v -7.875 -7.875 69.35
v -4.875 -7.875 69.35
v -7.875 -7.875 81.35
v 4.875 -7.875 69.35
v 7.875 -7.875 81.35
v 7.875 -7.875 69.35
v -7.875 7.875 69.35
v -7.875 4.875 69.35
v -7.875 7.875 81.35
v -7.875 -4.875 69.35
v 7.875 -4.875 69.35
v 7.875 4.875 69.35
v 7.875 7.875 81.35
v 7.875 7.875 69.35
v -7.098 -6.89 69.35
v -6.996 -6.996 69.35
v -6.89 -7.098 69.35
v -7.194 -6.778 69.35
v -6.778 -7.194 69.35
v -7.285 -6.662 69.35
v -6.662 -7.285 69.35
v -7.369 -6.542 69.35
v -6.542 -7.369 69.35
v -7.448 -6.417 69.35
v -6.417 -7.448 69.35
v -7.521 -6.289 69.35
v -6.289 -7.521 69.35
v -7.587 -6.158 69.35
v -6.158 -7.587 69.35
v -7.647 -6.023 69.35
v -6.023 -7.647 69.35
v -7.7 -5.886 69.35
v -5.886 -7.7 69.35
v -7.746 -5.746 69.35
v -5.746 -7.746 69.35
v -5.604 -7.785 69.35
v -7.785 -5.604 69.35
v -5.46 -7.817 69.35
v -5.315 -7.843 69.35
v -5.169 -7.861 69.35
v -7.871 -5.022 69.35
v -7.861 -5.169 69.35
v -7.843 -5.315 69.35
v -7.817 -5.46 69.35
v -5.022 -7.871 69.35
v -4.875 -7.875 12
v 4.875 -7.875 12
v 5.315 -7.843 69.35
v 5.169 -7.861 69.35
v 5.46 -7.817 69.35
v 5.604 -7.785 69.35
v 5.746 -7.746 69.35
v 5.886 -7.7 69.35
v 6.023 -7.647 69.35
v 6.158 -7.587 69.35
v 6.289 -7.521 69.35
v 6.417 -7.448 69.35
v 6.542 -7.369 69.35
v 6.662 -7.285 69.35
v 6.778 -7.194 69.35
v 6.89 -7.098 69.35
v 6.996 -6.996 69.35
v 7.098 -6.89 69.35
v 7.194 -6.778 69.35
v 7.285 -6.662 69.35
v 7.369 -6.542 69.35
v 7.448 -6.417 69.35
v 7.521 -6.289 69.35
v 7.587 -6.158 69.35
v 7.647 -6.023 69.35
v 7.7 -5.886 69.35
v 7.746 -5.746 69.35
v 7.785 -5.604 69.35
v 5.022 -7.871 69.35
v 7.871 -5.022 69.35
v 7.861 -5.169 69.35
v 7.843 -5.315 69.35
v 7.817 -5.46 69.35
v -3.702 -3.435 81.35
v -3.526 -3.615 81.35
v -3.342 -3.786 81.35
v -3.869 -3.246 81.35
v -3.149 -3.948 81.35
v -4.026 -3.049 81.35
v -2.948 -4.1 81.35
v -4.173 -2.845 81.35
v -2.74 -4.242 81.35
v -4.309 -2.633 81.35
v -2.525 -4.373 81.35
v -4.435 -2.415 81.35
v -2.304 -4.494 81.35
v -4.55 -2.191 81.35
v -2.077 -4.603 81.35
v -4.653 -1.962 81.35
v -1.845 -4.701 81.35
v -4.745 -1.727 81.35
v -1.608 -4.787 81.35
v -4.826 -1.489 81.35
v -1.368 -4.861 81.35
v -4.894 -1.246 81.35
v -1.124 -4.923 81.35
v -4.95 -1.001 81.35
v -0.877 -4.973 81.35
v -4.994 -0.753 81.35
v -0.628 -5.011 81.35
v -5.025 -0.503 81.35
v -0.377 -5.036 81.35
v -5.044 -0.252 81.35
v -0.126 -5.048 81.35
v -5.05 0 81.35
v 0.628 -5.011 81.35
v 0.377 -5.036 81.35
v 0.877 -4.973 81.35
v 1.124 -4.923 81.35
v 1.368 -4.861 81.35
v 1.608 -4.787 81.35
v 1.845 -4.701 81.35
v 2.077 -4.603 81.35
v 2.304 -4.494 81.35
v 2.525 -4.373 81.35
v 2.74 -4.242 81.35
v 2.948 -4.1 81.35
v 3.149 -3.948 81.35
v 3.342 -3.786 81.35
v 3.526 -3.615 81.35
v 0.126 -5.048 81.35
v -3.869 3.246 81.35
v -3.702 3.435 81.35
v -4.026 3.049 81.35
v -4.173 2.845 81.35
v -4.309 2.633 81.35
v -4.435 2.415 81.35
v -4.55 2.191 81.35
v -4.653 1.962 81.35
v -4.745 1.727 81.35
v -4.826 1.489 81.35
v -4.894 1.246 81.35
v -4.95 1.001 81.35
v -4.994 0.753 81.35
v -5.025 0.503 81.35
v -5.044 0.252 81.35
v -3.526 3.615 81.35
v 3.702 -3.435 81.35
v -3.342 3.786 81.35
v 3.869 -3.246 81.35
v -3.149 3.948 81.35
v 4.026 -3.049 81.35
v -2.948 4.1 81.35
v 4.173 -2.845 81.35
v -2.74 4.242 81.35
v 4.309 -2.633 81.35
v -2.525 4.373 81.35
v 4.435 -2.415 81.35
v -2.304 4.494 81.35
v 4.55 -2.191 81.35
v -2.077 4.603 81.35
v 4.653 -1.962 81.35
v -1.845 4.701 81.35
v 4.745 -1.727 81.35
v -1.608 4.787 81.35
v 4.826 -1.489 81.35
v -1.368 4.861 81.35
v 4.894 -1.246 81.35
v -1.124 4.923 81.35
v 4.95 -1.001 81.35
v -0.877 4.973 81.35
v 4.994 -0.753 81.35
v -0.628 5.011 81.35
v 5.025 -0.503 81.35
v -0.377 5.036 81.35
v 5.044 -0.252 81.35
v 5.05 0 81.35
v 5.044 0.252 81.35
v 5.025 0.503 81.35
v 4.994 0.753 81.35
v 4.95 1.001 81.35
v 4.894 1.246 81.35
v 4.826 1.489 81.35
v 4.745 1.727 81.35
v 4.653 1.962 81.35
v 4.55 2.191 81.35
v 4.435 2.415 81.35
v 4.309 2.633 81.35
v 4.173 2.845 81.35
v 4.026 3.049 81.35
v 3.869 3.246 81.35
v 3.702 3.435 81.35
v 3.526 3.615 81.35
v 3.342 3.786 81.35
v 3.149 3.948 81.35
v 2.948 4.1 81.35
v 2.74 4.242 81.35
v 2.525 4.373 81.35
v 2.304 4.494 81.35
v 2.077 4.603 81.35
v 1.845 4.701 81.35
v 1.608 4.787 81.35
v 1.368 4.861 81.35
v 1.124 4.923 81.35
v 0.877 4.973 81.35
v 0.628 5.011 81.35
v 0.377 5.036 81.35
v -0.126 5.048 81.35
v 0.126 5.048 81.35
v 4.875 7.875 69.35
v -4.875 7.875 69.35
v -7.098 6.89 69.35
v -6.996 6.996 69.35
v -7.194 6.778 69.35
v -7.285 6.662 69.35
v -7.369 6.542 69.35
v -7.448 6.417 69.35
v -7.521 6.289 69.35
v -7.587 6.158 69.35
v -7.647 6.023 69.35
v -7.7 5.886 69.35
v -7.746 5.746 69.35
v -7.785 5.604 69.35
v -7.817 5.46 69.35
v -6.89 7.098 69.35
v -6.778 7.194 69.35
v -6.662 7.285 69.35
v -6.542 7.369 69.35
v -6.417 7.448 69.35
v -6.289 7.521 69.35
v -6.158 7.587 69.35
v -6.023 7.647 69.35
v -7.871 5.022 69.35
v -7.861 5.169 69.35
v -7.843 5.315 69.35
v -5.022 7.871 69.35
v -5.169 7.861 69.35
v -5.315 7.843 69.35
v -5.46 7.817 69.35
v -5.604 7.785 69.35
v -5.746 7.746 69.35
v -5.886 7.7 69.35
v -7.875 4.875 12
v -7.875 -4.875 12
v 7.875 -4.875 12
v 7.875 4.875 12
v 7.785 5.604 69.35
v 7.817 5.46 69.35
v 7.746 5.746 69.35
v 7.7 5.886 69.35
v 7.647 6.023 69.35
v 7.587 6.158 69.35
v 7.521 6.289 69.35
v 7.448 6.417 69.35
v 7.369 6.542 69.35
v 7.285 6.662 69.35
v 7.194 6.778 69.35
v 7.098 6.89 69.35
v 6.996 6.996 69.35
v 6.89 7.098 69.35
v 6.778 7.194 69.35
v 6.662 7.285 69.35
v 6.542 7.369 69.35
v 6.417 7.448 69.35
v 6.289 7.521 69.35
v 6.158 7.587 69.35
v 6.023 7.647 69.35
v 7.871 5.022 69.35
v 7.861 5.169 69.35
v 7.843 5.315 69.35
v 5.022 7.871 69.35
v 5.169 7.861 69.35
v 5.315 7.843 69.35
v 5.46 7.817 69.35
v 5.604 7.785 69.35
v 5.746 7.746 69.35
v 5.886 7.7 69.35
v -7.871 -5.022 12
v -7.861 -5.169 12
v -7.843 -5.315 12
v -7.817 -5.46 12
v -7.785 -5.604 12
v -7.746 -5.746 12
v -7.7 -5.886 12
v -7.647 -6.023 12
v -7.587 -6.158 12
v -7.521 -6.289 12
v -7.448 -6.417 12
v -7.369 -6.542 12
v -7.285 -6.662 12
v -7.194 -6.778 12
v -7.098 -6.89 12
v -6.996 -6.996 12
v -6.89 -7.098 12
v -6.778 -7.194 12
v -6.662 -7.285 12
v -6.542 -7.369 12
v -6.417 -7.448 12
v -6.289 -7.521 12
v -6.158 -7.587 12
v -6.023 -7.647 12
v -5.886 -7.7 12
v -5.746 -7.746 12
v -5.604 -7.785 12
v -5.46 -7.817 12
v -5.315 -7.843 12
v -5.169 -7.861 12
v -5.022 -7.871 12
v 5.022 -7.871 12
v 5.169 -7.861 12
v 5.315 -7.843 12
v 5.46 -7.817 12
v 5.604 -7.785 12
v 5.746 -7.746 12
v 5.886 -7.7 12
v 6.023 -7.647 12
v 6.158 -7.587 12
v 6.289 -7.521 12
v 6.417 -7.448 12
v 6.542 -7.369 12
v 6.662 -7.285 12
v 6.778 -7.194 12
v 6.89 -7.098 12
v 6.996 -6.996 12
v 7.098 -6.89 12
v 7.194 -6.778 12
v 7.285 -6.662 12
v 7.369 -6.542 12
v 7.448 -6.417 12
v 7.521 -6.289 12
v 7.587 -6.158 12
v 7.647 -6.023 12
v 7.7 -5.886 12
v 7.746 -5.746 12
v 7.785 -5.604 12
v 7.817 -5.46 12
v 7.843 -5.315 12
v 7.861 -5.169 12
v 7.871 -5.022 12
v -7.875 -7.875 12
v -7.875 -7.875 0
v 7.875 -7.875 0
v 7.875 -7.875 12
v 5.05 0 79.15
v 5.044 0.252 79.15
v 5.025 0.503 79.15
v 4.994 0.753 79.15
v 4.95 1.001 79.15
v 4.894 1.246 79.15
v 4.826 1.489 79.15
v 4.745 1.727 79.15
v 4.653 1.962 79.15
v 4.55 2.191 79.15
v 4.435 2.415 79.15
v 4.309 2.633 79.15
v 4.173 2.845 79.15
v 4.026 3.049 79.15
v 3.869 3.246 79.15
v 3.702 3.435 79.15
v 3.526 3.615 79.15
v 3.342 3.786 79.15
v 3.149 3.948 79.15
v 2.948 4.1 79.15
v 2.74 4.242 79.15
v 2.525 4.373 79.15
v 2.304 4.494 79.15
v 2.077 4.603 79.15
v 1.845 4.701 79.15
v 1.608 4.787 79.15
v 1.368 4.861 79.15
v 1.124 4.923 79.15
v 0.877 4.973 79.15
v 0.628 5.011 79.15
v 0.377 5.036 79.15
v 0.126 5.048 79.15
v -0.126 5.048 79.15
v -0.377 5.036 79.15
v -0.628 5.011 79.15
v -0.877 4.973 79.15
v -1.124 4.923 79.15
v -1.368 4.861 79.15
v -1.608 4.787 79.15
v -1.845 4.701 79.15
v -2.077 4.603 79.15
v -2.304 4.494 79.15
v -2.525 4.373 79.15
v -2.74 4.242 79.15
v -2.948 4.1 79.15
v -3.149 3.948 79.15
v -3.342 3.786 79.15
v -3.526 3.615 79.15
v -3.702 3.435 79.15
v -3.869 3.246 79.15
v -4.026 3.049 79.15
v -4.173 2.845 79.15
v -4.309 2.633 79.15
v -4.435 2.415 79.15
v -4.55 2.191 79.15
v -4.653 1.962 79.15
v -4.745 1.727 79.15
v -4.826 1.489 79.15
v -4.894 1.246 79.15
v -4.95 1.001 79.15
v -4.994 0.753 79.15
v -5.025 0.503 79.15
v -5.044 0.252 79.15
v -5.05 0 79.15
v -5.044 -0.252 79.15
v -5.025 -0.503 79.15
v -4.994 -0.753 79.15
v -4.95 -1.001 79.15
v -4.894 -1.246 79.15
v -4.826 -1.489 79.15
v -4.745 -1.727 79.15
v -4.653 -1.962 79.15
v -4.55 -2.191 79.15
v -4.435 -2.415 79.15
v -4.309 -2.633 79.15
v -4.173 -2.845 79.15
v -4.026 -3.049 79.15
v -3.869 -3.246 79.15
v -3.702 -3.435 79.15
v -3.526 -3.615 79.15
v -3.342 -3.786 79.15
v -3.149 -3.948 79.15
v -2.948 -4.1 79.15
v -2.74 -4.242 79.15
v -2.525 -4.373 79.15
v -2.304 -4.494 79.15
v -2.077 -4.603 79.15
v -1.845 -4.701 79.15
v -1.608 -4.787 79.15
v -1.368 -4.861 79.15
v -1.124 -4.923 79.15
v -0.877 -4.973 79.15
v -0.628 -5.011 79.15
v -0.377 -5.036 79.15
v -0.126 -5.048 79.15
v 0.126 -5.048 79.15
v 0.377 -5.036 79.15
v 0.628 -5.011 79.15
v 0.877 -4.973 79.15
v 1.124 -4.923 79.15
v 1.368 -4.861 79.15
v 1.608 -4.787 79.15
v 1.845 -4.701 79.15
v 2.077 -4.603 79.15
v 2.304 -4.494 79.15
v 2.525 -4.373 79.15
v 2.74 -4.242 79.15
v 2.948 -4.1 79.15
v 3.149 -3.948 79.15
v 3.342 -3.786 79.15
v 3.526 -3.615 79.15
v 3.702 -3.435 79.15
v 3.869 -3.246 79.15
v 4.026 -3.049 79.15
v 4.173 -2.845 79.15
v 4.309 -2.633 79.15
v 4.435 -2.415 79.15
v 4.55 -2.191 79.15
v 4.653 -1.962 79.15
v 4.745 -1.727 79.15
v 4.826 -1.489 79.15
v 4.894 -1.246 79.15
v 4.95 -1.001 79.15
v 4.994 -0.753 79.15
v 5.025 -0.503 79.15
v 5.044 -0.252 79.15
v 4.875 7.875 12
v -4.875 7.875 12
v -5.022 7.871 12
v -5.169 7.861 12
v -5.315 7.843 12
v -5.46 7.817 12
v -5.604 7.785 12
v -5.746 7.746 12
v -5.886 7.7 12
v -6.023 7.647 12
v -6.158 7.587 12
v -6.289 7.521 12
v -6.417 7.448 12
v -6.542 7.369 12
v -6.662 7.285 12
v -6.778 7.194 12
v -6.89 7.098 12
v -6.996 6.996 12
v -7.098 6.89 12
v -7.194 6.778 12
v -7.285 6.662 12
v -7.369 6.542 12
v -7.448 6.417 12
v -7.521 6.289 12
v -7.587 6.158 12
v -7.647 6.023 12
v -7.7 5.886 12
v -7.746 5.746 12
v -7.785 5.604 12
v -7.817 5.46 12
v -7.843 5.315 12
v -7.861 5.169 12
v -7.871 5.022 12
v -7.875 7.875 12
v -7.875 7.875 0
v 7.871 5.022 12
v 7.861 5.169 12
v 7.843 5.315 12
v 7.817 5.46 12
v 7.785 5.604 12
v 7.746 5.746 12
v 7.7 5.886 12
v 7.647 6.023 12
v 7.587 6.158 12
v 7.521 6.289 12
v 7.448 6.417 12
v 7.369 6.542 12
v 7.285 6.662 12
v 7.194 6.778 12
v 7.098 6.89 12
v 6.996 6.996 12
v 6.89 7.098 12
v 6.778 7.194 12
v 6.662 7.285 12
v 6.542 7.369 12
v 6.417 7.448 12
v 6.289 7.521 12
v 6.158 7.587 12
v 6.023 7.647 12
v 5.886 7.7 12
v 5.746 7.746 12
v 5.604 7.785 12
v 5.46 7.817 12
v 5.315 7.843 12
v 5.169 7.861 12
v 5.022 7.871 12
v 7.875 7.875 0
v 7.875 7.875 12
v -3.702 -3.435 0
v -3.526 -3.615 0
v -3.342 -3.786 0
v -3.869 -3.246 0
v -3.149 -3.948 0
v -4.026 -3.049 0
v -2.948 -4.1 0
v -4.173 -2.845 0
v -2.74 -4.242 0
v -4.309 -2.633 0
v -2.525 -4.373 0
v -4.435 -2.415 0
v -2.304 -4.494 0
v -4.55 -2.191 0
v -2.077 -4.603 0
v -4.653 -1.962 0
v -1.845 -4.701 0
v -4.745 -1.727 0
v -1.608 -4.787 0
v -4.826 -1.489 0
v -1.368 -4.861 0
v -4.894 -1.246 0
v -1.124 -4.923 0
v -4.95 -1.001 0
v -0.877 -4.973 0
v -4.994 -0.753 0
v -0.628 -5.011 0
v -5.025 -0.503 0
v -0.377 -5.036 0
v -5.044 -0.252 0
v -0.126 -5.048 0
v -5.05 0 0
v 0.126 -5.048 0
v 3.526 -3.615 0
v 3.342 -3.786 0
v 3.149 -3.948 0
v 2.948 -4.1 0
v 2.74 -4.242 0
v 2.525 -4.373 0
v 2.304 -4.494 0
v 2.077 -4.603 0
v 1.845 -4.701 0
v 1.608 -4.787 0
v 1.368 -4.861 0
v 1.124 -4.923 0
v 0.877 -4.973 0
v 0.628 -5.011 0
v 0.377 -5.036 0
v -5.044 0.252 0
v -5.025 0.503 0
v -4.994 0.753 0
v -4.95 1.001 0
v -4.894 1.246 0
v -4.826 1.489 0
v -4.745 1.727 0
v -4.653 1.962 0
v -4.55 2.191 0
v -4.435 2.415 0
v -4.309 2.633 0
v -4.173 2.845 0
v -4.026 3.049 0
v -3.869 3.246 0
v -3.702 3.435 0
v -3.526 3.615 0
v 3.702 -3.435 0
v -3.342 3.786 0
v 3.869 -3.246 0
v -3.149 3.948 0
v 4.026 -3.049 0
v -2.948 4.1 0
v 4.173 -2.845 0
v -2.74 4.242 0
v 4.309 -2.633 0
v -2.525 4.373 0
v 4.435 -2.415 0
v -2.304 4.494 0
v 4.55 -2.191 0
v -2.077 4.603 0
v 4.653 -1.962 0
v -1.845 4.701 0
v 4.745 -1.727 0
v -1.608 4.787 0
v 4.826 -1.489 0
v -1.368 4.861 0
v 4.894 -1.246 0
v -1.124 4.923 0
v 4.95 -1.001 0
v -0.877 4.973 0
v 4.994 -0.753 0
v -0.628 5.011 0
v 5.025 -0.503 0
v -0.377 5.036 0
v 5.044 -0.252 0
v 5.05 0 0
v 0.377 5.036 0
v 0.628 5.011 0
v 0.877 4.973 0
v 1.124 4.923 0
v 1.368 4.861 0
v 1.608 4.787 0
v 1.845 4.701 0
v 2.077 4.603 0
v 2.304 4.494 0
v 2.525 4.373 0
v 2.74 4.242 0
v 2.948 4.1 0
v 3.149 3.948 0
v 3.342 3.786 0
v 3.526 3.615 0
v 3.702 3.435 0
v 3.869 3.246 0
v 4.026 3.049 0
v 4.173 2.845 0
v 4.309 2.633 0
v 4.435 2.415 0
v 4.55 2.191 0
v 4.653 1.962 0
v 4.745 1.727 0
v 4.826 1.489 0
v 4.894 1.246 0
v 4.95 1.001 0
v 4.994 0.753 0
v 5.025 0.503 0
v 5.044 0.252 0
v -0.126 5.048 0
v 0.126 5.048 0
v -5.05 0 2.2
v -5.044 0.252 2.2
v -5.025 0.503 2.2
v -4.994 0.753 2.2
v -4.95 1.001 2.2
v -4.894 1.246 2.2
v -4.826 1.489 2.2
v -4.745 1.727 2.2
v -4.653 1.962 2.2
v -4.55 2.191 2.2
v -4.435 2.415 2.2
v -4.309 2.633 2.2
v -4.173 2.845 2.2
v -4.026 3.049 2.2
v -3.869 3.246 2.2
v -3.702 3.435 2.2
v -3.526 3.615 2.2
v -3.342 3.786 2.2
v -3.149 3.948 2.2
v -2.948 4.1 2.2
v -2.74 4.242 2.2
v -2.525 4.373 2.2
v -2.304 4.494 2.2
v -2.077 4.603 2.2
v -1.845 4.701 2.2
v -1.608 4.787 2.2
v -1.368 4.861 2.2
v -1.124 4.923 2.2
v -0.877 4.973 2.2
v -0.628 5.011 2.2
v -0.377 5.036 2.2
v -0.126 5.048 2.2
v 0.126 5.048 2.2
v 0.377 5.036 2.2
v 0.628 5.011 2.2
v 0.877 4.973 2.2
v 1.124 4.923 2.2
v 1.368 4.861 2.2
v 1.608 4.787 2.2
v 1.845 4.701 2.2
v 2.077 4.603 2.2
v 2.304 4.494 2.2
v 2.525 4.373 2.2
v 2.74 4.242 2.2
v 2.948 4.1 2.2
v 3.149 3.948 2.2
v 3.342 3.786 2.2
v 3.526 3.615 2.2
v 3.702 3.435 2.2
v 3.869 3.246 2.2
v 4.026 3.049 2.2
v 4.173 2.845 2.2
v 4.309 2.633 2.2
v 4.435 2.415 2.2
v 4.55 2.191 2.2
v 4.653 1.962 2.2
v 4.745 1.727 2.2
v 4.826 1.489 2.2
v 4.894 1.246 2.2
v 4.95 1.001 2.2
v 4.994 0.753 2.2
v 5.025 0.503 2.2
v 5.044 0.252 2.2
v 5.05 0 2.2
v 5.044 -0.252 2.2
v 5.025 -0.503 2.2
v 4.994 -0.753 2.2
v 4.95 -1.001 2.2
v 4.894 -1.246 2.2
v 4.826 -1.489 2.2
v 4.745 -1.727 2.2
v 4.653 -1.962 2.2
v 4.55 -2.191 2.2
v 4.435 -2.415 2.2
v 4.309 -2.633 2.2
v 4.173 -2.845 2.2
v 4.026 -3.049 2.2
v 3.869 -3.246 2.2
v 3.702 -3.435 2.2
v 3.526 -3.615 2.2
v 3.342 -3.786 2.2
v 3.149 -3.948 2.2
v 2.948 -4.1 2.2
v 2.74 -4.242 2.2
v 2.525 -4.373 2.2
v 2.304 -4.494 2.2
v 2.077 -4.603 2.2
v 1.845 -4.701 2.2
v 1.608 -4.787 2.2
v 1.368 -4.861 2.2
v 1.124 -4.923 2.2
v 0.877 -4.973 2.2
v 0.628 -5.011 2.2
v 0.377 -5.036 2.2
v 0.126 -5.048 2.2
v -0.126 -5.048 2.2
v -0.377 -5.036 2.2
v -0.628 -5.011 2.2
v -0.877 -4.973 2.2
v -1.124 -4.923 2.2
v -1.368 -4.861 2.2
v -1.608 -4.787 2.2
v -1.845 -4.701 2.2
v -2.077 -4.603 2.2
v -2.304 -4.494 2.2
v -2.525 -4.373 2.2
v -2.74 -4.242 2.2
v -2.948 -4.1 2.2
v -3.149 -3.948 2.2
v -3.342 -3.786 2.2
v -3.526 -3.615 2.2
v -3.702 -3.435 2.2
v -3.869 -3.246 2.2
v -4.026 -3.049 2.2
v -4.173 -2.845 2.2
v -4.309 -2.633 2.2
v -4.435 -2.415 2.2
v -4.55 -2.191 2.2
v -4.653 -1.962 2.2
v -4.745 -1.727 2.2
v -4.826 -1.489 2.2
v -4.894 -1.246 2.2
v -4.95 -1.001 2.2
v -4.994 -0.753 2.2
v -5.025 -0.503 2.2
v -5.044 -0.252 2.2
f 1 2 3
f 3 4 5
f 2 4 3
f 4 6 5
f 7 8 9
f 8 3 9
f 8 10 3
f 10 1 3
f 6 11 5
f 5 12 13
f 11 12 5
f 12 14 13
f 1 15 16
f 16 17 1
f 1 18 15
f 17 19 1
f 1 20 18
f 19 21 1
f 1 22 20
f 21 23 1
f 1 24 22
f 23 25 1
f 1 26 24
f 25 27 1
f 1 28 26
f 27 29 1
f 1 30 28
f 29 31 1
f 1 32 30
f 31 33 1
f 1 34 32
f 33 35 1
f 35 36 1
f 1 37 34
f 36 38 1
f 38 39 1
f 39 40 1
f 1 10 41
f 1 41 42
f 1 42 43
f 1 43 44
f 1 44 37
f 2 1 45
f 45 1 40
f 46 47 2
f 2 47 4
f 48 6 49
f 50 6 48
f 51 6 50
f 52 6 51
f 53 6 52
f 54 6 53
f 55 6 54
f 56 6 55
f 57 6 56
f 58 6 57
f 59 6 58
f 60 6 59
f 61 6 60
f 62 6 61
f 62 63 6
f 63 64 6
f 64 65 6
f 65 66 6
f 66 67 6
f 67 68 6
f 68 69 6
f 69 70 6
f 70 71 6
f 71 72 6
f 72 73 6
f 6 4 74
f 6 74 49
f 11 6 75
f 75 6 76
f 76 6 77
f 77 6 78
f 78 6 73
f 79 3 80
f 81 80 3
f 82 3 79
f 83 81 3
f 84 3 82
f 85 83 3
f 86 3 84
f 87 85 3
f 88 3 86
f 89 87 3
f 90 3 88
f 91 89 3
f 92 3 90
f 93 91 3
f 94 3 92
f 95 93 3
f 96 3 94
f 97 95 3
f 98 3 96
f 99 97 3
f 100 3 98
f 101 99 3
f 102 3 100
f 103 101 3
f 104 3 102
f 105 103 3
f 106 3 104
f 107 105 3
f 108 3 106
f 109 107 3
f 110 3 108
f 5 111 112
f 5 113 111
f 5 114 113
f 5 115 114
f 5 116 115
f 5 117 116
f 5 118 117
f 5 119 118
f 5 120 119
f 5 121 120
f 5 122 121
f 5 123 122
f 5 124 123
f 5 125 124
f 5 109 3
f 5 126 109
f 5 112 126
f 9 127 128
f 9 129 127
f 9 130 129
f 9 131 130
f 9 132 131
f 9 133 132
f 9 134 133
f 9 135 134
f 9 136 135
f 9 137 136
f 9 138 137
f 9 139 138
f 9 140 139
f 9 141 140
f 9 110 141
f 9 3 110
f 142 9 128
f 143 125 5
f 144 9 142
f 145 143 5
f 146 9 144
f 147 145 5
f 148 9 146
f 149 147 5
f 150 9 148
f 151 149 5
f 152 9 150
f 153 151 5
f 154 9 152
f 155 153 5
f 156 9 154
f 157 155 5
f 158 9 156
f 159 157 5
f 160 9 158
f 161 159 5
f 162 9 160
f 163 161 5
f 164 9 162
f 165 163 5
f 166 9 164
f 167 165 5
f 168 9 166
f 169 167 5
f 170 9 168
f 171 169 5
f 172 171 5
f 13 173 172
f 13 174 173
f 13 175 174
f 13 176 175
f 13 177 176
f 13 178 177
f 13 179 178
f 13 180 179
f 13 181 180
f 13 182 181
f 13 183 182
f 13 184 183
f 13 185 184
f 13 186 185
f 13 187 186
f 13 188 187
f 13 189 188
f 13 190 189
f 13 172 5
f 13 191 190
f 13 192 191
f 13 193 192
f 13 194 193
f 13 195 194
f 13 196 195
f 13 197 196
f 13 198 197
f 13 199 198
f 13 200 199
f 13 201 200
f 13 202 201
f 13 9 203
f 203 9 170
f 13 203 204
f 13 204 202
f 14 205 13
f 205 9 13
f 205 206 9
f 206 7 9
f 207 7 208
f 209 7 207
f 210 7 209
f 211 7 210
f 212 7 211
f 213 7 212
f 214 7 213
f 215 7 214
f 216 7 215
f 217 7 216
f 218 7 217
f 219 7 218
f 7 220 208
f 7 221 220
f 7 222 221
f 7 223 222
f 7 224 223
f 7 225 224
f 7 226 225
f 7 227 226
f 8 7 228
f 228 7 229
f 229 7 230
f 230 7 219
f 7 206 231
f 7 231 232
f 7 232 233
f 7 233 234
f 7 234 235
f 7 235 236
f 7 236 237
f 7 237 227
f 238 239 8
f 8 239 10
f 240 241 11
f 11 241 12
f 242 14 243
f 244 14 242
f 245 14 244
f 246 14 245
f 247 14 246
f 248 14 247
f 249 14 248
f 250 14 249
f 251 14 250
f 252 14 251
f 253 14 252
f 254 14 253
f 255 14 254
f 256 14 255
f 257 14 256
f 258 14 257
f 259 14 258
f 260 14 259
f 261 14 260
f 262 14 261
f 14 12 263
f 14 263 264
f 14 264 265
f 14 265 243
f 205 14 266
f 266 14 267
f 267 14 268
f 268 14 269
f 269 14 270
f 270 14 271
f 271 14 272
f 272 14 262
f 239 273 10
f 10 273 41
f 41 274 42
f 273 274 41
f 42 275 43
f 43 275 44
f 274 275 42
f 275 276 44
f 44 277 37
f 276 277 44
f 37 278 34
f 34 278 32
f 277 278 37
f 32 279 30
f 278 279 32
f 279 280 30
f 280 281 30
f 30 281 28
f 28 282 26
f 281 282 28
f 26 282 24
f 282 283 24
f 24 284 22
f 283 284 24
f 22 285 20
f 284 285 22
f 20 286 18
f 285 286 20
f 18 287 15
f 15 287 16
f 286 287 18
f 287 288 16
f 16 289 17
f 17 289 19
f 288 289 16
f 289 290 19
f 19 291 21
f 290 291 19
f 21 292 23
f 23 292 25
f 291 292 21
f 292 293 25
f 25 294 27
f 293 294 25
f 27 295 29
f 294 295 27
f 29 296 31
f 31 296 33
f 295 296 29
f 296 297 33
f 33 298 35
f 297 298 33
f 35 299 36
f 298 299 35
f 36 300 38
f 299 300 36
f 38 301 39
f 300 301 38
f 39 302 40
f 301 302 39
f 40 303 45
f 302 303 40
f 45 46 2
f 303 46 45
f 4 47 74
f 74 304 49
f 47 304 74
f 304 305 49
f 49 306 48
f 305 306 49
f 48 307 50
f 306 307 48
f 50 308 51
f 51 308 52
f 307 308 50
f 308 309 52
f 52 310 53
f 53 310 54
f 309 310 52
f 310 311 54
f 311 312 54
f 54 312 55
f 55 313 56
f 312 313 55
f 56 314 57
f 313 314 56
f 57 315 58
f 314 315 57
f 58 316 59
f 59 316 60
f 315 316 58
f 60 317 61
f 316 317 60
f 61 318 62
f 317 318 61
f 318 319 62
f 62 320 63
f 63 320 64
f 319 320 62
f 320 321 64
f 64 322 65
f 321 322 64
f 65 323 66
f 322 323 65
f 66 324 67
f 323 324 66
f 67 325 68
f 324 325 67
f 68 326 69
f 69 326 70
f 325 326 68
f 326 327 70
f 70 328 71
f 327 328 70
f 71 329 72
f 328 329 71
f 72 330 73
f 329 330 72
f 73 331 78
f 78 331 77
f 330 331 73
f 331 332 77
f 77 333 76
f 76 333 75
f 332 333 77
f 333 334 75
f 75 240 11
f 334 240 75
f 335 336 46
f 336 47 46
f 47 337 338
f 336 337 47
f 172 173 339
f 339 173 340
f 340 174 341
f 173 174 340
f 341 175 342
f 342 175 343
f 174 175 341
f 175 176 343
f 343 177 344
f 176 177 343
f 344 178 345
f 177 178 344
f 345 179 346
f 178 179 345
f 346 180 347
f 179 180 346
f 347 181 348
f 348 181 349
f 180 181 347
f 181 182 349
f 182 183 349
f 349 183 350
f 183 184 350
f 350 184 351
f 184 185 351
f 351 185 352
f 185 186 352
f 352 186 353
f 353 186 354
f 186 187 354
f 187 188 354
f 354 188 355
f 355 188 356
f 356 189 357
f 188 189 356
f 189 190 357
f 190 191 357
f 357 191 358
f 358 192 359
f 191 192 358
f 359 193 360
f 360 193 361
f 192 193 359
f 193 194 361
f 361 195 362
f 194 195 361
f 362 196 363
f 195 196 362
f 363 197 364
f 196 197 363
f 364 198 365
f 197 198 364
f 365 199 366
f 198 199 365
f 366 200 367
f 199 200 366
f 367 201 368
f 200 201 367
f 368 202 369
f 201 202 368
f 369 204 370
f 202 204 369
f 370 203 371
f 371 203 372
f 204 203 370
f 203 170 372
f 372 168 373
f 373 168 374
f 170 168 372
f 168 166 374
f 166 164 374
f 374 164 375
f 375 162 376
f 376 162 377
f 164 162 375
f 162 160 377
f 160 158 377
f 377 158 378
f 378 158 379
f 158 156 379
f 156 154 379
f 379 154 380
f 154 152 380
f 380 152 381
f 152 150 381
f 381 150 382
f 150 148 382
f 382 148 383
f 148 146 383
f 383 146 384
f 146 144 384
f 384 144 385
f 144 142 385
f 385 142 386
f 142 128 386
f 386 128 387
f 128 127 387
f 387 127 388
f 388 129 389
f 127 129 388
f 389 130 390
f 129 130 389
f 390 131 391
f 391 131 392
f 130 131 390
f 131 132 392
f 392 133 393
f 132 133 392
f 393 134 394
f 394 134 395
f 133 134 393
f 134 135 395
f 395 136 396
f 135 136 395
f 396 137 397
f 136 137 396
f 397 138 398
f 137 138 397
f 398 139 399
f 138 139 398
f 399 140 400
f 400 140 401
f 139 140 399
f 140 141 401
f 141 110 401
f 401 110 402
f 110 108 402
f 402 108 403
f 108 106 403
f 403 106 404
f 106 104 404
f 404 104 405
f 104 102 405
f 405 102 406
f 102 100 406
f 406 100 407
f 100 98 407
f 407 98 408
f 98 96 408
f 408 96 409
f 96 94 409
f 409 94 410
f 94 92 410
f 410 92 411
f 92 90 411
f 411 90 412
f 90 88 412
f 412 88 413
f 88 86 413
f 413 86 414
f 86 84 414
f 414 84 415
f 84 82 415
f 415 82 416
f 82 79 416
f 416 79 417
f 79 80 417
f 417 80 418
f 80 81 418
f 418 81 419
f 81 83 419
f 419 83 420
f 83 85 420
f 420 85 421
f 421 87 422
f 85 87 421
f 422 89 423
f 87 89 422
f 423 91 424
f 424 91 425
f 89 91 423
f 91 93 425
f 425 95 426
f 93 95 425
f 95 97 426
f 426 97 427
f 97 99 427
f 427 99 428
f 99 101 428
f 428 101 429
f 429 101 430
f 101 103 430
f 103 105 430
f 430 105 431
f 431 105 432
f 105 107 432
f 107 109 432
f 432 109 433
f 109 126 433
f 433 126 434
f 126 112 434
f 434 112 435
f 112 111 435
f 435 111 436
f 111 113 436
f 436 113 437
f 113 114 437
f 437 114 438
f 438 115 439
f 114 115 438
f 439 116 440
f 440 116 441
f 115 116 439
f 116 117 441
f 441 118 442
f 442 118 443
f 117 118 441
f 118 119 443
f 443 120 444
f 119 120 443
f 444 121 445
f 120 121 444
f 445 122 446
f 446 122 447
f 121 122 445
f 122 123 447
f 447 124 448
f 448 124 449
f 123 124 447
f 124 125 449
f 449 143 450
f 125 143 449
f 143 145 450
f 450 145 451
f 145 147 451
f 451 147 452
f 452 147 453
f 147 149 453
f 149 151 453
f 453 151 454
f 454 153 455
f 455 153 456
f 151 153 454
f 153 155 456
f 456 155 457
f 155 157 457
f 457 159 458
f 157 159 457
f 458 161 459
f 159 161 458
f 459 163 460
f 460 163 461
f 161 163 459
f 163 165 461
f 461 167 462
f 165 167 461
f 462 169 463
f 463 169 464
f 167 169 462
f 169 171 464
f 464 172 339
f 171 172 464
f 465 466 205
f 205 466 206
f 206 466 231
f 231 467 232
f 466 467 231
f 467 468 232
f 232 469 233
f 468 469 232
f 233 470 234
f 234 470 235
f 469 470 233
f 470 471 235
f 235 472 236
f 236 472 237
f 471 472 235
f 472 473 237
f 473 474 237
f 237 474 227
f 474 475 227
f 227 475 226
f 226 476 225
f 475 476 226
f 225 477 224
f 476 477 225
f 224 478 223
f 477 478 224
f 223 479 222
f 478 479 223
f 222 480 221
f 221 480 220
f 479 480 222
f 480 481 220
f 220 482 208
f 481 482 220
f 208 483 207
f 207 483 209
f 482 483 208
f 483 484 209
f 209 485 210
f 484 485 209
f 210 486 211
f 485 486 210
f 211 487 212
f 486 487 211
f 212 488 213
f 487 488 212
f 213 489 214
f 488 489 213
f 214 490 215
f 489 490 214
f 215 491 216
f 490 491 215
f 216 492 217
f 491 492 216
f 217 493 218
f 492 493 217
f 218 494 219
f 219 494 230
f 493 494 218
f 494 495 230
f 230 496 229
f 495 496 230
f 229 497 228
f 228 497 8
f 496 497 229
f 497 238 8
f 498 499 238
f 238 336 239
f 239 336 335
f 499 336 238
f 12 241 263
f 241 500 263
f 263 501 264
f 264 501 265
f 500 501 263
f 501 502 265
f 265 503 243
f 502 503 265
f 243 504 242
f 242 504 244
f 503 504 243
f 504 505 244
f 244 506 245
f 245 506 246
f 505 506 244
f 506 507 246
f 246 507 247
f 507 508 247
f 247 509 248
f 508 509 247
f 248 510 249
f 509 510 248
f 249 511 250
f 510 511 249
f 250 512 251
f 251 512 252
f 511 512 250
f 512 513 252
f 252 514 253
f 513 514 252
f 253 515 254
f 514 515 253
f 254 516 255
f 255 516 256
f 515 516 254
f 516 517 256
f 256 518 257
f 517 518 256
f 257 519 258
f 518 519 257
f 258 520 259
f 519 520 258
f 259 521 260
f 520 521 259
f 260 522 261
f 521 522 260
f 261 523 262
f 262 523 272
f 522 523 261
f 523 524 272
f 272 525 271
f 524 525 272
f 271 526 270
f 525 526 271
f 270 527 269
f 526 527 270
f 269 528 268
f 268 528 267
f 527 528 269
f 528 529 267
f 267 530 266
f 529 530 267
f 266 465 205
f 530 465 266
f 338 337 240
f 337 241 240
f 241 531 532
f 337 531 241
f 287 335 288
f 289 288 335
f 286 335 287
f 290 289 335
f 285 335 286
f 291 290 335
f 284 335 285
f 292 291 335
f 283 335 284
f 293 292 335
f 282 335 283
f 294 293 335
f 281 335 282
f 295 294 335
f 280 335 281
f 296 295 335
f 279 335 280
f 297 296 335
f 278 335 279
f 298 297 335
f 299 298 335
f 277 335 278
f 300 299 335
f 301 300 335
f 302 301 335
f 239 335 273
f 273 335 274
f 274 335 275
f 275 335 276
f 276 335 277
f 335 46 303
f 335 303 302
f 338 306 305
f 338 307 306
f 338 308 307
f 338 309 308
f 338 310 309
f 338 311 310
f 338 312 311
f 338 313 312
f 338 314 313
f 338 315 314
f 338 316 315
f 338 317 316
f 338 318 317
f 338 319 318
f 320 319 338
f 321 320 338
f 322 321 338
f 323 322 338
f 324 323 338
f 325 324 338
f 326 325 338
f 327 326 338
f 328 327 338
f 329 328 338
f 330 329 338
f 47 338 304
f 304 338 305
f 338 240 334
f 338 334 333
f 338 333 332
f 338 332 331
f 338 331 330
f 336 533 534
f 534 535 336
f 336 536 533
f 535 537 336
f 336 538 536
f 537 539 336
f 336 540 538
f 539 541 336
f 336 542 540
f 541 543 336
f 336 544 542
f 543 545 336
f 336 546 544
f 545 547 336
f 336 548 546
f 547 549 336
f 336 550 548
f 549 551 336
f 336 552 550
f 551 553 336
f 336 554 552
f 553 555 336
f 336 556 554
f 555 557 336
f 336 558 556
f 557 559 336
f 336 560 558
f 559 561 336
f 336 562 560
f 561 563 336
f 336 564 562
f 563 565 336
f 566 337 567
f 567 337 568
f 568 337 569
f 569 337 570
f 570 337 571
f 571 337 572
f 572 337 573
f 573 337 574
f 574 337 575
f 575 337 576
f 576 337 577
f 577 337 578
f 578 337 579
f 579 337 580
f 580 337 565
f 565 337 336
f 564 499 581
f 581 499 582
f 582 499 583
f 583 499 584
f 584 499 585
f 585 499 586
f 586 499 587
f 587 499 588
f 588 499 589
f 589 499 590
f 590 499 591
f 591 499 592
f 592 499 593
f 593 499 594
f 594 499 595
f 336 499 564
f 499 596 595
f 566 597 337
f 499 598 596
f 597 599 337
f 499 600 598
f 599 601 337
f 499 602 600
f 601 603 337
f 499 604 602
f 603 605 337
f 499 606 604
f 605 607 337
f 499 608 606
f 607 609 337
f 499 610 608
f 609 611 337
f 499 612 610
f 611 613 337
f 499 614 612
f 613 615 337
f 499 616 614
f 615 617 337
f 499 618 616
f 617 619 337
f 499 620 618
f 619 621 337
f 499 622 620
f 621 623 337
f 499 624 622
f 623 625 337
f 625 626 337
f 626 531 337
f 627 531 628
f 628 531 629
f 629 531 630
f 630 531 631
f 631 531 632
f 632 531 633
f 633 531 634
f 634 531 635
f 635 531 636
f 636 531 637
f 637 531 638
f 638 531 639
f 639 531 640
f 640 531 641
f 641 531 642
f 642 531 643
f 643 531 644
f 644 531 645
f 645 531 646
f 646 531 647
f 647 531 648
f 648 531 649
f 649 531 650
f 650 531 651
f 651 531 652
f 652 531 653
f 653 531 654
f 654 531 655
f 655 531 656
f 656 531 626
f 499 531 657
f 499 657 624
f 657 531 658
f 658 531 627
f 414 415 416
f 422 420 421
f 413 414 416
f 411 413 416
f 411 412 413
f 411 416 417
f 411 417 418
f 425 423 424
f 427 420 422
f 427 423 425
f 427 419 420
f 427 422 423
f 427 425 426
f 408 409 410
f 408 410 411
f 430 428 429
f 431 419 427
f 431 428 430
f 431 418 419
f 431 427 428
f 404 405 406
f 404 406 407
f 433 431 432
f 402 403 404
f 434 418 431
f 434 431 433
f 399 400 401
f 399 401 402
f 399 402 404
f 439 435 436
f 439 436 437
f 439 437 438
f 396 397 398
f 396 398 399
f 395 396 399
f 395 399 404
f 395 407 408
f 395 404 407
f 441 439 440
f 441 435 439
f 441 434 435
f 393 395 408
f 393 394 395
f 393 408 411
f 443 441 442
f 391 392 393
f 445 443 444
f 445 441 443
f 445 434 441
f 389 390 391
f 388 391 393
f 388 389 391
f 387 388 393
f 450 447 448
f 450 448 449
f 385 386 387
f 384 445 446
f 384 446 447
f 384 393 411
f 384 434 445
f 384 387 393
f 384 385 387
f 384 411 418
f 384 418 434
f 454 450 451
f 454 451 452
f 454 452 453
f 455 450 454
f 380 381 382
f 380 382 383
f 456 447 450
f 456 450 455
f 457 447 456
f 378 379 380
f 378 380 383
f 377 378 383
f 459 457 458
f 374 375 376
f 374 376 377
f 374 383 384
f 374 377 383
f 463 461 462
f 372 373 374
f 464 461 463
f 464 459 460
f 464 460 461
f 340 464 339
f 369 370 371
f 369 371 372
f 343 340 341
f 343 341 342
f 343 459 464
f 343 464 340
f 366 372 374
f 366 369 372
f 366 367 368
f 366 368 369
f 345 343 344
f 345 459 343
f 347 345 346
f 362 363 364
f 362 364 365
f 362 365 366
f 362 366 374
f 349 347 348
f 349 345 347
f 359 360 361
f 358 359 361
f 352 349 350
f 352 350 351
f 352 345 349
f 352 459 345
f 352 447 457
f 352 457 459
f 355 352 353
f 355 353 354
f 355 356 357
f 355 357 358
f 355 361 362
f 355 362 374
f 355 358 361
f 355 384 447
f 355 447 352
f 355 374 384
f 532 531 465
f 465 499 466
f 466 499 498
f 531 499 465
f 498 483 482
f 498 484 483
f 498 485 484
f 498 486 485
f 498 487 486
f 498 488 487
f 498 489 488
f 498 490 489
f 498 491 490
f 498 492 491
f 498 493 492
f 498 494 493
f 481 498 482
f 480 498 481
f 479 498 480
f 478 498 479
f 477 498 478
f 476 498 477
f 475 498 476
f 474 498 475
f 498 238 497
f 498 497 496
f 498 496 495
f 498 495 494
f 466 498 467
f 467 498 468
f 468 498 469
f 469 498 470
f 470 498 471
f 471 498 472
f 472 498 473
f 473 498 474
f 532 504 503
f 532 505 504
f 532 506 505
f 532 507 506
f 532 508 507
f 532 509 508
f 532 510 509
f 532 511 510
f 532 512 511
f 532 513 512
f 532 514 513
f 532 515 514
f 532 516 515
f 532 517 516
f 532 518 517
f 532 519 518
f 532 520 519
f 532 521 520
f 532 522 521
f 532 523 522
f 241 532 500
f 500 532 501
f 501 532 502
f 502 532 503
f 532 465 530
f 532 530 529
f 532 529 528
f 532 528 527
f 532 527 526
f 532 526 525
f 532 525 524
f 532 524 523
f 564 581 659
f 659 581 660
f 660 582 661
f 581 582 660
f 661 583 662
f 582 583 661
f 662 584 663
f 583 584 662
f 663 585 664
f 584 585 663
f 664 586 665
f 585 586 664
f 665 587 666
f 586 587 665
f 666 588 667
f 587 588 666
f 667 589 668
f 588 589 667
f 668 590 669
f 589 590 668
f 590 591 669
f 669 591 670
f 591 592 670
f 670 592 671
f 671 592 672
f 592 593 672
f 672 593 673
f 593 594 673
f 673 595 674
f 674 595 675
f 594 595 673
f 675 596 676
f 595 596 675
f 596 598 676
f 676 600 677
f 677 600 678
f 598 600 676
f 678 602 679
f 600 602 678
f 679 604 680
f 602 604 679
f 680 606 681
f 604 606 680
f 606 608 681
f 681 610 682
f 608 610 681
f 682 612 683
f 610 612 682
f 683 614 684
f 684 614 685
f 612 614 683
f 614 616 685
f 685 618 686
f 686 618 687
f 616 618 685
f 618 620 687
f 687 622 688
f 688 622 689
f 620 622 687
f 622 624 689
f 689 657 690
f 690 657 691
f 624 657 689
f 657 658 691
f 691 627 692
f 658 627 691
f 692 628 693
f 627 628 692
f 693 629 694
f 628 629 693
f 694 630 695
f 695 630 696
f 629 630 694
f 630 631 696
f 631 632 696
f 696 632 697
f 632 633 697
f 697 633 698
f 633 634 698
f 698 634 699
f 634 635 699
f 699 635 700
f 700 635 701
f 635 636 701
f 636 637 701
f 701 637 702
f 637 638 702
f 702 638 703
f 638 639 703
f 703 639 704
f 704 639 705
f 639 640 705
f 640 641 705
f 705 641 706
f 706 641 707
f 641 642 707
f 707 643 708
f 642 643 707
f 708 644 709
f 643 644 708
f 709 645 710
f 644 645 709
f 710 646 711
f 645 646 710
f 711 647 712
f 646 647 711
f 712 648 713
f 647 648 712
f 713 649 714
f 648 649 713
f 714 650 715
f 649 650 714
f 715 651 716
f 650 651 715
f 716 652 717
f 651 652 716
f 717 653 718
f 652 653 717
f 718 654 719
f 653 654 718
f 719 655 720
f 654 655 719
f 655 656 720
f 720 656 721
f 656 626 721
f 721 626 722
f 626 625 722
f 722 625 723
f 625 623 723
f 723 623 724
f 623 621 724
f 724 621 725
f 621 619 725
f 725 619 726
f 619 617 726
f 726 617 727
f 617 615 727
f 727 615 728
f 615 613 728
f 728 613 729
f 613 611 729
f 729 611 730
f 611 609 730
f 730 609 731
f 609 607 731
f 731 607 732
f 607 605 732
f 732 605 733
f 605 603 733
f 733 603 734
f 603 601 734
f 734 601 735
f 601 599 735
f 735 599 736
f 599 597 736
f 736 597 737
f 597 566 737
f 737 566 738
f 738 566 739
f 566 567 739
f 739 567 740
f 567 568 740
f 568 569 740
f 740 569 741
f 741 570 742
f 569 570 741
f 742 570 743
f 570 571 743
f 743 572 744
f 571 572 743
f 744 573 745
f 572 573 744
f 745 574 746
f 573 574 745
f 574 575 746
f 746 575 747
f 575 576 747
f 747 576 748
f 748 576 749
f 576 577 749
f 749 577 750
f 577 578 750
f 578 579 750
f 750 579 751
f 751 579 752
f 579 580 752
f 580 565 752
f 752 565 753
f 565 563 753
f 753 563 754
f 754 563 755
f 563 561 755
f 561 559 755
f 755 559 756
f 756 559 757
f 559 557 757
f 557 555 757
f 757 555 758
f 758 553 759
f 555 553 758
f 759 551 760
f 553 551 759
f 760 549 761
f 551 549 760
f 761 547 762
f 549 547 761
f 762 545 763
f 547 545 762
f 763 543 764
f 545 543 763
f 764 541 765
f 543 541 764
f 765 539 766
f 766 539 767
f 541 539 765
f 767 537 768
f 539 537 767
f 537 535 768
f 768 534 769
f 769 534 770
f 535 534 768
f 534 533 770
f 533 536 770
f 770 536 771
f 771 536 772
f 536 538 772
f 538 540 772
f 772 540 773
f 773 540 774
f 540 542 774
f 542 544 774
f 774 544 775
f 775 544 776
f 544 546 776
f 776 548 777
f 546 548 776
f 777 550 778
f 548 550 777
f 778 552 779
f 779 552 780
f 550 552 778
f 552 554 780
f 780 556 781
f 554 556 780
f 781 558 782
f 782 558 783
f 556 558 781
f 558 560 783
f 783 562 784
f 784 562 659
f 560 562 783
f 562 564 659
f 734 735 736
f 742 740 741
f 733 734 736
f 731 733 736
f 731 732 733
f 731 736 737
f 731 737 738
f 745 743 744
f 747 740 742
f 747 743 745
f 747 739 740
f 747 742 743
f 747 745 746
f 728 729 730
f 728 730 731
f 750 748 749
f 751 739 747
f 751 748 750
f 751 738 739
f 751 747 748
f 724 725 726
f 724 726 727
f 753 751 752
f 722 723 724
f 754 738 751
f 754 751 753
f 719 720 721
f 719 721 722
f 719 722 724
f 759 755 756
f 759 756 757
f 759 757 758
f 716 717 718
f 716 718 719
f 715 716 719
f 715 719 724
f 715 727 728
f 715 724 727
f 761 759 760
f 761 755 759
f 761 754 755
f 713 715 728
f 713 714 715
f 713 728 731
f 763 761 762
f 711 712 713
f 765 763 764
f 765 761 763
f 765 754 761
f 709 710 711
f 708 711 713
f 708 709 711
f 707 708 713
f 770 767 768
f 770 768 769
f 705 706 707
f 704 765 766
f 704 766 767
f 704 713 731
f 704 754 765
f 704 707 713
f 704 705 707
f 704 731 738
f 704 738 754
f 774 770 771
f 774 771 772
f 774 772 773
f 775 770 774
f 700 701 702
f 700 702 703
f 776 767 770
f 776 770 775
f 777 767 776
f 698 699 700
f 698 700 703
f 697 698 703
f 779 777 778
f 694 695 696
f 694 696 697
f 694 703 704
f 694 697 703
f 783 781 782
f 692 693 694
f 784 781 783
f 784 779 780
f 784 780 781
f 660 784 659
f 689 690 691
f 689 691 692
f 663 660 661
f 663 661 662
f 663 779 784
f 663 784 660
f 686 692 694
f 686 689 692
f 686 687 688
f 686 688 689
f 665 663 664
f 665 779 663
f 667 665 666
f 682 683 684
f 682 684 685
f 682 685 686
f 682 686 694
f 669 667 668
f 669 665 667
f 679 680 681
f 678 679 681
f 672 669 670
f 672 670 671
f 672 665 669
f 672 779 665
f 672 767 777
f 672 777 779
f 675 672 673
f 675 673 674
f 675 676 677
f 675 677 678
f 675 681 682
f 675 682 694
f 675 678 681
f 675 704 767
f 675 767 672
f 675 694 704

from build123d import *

# Parameters (mm, degrees)
SKETCH_W        = 15.75
SKETCH_H        = 15.75
PAD_DEPTH       = 12
PAD001_DEPTH    = 57.35
SKETCH002_W     = 15.75
SKETCH002_H     = 15.75
PAD002_DEPTH    = 12
SKETCH003_R     = 5.05
POCKET_DEPTH    = 2.2
SKETCH004_R     = 5.05
POCKET001_DEPTH = 2.2


with BuildPart() as part:
    # Sketch → Pad (new body)
    with BuildSketch(Plane.XY):
        Rectangle(SKETCH_W, SKETCH_H)
    extrude(amount=PAD_DEPTH)

    # Sketch001 → Pad001 (join)
    with BuildSketch(Plane.XY.offset(12)):
        with BuildLine():
            Line((-4.875, -7.875), (4.875, -7.875))
            ThreePointArc((4.875, -7.875), (6.99632, -6.99632), (7.875, -4.875))
            Line((7.875, -4.875), (7.875, 4.875))
            ThreePointArc((7.875, 4.875), (6.99632, 6.99632), (4.875, 7.875))
            Line((4.875, 7.875), (-4.875, 7.875))
            ThreePointArc((-4.875, 7.875), (-6.99632, 6.99632), (-7.875, 4.875))
            Line((-7.875, 4.875), (-7.875, -4.875))
            ThreePointArc((-7.875, -4.875), (-6.99632, -6.99632), (-4.875, -7.875))
        make_face()
    extrude(amount=PAD001_DEPTH)

    # Sketch002 (on Face15 of Pad001) → Pad002 (join)
    with BuildSketch(Plane.XY.offset(69.35)):
        Rectangle(SKETCH002_W, SKETCH002_H)
    extrude(amount=PAD002_DEPTH)

    # Sketch003 (on Face7 of Pad002) → Pocket (cut)
    with BuildSketch(Plane.XY.offset(81.35)):
        Circle(SKETCH003_R)
    extrude(amount=-POCKET_DEPTH, mode=Mode.SUBTRACT)

    # Sketch004 → Pocket001 (cut)
    with BuildSketch(Plane.XY):
        Circle(SKETCH004_R)
    extrude(amount=POCKET001_DEPTH, mode=Mode.SUBTRACT)


solid = part.part
